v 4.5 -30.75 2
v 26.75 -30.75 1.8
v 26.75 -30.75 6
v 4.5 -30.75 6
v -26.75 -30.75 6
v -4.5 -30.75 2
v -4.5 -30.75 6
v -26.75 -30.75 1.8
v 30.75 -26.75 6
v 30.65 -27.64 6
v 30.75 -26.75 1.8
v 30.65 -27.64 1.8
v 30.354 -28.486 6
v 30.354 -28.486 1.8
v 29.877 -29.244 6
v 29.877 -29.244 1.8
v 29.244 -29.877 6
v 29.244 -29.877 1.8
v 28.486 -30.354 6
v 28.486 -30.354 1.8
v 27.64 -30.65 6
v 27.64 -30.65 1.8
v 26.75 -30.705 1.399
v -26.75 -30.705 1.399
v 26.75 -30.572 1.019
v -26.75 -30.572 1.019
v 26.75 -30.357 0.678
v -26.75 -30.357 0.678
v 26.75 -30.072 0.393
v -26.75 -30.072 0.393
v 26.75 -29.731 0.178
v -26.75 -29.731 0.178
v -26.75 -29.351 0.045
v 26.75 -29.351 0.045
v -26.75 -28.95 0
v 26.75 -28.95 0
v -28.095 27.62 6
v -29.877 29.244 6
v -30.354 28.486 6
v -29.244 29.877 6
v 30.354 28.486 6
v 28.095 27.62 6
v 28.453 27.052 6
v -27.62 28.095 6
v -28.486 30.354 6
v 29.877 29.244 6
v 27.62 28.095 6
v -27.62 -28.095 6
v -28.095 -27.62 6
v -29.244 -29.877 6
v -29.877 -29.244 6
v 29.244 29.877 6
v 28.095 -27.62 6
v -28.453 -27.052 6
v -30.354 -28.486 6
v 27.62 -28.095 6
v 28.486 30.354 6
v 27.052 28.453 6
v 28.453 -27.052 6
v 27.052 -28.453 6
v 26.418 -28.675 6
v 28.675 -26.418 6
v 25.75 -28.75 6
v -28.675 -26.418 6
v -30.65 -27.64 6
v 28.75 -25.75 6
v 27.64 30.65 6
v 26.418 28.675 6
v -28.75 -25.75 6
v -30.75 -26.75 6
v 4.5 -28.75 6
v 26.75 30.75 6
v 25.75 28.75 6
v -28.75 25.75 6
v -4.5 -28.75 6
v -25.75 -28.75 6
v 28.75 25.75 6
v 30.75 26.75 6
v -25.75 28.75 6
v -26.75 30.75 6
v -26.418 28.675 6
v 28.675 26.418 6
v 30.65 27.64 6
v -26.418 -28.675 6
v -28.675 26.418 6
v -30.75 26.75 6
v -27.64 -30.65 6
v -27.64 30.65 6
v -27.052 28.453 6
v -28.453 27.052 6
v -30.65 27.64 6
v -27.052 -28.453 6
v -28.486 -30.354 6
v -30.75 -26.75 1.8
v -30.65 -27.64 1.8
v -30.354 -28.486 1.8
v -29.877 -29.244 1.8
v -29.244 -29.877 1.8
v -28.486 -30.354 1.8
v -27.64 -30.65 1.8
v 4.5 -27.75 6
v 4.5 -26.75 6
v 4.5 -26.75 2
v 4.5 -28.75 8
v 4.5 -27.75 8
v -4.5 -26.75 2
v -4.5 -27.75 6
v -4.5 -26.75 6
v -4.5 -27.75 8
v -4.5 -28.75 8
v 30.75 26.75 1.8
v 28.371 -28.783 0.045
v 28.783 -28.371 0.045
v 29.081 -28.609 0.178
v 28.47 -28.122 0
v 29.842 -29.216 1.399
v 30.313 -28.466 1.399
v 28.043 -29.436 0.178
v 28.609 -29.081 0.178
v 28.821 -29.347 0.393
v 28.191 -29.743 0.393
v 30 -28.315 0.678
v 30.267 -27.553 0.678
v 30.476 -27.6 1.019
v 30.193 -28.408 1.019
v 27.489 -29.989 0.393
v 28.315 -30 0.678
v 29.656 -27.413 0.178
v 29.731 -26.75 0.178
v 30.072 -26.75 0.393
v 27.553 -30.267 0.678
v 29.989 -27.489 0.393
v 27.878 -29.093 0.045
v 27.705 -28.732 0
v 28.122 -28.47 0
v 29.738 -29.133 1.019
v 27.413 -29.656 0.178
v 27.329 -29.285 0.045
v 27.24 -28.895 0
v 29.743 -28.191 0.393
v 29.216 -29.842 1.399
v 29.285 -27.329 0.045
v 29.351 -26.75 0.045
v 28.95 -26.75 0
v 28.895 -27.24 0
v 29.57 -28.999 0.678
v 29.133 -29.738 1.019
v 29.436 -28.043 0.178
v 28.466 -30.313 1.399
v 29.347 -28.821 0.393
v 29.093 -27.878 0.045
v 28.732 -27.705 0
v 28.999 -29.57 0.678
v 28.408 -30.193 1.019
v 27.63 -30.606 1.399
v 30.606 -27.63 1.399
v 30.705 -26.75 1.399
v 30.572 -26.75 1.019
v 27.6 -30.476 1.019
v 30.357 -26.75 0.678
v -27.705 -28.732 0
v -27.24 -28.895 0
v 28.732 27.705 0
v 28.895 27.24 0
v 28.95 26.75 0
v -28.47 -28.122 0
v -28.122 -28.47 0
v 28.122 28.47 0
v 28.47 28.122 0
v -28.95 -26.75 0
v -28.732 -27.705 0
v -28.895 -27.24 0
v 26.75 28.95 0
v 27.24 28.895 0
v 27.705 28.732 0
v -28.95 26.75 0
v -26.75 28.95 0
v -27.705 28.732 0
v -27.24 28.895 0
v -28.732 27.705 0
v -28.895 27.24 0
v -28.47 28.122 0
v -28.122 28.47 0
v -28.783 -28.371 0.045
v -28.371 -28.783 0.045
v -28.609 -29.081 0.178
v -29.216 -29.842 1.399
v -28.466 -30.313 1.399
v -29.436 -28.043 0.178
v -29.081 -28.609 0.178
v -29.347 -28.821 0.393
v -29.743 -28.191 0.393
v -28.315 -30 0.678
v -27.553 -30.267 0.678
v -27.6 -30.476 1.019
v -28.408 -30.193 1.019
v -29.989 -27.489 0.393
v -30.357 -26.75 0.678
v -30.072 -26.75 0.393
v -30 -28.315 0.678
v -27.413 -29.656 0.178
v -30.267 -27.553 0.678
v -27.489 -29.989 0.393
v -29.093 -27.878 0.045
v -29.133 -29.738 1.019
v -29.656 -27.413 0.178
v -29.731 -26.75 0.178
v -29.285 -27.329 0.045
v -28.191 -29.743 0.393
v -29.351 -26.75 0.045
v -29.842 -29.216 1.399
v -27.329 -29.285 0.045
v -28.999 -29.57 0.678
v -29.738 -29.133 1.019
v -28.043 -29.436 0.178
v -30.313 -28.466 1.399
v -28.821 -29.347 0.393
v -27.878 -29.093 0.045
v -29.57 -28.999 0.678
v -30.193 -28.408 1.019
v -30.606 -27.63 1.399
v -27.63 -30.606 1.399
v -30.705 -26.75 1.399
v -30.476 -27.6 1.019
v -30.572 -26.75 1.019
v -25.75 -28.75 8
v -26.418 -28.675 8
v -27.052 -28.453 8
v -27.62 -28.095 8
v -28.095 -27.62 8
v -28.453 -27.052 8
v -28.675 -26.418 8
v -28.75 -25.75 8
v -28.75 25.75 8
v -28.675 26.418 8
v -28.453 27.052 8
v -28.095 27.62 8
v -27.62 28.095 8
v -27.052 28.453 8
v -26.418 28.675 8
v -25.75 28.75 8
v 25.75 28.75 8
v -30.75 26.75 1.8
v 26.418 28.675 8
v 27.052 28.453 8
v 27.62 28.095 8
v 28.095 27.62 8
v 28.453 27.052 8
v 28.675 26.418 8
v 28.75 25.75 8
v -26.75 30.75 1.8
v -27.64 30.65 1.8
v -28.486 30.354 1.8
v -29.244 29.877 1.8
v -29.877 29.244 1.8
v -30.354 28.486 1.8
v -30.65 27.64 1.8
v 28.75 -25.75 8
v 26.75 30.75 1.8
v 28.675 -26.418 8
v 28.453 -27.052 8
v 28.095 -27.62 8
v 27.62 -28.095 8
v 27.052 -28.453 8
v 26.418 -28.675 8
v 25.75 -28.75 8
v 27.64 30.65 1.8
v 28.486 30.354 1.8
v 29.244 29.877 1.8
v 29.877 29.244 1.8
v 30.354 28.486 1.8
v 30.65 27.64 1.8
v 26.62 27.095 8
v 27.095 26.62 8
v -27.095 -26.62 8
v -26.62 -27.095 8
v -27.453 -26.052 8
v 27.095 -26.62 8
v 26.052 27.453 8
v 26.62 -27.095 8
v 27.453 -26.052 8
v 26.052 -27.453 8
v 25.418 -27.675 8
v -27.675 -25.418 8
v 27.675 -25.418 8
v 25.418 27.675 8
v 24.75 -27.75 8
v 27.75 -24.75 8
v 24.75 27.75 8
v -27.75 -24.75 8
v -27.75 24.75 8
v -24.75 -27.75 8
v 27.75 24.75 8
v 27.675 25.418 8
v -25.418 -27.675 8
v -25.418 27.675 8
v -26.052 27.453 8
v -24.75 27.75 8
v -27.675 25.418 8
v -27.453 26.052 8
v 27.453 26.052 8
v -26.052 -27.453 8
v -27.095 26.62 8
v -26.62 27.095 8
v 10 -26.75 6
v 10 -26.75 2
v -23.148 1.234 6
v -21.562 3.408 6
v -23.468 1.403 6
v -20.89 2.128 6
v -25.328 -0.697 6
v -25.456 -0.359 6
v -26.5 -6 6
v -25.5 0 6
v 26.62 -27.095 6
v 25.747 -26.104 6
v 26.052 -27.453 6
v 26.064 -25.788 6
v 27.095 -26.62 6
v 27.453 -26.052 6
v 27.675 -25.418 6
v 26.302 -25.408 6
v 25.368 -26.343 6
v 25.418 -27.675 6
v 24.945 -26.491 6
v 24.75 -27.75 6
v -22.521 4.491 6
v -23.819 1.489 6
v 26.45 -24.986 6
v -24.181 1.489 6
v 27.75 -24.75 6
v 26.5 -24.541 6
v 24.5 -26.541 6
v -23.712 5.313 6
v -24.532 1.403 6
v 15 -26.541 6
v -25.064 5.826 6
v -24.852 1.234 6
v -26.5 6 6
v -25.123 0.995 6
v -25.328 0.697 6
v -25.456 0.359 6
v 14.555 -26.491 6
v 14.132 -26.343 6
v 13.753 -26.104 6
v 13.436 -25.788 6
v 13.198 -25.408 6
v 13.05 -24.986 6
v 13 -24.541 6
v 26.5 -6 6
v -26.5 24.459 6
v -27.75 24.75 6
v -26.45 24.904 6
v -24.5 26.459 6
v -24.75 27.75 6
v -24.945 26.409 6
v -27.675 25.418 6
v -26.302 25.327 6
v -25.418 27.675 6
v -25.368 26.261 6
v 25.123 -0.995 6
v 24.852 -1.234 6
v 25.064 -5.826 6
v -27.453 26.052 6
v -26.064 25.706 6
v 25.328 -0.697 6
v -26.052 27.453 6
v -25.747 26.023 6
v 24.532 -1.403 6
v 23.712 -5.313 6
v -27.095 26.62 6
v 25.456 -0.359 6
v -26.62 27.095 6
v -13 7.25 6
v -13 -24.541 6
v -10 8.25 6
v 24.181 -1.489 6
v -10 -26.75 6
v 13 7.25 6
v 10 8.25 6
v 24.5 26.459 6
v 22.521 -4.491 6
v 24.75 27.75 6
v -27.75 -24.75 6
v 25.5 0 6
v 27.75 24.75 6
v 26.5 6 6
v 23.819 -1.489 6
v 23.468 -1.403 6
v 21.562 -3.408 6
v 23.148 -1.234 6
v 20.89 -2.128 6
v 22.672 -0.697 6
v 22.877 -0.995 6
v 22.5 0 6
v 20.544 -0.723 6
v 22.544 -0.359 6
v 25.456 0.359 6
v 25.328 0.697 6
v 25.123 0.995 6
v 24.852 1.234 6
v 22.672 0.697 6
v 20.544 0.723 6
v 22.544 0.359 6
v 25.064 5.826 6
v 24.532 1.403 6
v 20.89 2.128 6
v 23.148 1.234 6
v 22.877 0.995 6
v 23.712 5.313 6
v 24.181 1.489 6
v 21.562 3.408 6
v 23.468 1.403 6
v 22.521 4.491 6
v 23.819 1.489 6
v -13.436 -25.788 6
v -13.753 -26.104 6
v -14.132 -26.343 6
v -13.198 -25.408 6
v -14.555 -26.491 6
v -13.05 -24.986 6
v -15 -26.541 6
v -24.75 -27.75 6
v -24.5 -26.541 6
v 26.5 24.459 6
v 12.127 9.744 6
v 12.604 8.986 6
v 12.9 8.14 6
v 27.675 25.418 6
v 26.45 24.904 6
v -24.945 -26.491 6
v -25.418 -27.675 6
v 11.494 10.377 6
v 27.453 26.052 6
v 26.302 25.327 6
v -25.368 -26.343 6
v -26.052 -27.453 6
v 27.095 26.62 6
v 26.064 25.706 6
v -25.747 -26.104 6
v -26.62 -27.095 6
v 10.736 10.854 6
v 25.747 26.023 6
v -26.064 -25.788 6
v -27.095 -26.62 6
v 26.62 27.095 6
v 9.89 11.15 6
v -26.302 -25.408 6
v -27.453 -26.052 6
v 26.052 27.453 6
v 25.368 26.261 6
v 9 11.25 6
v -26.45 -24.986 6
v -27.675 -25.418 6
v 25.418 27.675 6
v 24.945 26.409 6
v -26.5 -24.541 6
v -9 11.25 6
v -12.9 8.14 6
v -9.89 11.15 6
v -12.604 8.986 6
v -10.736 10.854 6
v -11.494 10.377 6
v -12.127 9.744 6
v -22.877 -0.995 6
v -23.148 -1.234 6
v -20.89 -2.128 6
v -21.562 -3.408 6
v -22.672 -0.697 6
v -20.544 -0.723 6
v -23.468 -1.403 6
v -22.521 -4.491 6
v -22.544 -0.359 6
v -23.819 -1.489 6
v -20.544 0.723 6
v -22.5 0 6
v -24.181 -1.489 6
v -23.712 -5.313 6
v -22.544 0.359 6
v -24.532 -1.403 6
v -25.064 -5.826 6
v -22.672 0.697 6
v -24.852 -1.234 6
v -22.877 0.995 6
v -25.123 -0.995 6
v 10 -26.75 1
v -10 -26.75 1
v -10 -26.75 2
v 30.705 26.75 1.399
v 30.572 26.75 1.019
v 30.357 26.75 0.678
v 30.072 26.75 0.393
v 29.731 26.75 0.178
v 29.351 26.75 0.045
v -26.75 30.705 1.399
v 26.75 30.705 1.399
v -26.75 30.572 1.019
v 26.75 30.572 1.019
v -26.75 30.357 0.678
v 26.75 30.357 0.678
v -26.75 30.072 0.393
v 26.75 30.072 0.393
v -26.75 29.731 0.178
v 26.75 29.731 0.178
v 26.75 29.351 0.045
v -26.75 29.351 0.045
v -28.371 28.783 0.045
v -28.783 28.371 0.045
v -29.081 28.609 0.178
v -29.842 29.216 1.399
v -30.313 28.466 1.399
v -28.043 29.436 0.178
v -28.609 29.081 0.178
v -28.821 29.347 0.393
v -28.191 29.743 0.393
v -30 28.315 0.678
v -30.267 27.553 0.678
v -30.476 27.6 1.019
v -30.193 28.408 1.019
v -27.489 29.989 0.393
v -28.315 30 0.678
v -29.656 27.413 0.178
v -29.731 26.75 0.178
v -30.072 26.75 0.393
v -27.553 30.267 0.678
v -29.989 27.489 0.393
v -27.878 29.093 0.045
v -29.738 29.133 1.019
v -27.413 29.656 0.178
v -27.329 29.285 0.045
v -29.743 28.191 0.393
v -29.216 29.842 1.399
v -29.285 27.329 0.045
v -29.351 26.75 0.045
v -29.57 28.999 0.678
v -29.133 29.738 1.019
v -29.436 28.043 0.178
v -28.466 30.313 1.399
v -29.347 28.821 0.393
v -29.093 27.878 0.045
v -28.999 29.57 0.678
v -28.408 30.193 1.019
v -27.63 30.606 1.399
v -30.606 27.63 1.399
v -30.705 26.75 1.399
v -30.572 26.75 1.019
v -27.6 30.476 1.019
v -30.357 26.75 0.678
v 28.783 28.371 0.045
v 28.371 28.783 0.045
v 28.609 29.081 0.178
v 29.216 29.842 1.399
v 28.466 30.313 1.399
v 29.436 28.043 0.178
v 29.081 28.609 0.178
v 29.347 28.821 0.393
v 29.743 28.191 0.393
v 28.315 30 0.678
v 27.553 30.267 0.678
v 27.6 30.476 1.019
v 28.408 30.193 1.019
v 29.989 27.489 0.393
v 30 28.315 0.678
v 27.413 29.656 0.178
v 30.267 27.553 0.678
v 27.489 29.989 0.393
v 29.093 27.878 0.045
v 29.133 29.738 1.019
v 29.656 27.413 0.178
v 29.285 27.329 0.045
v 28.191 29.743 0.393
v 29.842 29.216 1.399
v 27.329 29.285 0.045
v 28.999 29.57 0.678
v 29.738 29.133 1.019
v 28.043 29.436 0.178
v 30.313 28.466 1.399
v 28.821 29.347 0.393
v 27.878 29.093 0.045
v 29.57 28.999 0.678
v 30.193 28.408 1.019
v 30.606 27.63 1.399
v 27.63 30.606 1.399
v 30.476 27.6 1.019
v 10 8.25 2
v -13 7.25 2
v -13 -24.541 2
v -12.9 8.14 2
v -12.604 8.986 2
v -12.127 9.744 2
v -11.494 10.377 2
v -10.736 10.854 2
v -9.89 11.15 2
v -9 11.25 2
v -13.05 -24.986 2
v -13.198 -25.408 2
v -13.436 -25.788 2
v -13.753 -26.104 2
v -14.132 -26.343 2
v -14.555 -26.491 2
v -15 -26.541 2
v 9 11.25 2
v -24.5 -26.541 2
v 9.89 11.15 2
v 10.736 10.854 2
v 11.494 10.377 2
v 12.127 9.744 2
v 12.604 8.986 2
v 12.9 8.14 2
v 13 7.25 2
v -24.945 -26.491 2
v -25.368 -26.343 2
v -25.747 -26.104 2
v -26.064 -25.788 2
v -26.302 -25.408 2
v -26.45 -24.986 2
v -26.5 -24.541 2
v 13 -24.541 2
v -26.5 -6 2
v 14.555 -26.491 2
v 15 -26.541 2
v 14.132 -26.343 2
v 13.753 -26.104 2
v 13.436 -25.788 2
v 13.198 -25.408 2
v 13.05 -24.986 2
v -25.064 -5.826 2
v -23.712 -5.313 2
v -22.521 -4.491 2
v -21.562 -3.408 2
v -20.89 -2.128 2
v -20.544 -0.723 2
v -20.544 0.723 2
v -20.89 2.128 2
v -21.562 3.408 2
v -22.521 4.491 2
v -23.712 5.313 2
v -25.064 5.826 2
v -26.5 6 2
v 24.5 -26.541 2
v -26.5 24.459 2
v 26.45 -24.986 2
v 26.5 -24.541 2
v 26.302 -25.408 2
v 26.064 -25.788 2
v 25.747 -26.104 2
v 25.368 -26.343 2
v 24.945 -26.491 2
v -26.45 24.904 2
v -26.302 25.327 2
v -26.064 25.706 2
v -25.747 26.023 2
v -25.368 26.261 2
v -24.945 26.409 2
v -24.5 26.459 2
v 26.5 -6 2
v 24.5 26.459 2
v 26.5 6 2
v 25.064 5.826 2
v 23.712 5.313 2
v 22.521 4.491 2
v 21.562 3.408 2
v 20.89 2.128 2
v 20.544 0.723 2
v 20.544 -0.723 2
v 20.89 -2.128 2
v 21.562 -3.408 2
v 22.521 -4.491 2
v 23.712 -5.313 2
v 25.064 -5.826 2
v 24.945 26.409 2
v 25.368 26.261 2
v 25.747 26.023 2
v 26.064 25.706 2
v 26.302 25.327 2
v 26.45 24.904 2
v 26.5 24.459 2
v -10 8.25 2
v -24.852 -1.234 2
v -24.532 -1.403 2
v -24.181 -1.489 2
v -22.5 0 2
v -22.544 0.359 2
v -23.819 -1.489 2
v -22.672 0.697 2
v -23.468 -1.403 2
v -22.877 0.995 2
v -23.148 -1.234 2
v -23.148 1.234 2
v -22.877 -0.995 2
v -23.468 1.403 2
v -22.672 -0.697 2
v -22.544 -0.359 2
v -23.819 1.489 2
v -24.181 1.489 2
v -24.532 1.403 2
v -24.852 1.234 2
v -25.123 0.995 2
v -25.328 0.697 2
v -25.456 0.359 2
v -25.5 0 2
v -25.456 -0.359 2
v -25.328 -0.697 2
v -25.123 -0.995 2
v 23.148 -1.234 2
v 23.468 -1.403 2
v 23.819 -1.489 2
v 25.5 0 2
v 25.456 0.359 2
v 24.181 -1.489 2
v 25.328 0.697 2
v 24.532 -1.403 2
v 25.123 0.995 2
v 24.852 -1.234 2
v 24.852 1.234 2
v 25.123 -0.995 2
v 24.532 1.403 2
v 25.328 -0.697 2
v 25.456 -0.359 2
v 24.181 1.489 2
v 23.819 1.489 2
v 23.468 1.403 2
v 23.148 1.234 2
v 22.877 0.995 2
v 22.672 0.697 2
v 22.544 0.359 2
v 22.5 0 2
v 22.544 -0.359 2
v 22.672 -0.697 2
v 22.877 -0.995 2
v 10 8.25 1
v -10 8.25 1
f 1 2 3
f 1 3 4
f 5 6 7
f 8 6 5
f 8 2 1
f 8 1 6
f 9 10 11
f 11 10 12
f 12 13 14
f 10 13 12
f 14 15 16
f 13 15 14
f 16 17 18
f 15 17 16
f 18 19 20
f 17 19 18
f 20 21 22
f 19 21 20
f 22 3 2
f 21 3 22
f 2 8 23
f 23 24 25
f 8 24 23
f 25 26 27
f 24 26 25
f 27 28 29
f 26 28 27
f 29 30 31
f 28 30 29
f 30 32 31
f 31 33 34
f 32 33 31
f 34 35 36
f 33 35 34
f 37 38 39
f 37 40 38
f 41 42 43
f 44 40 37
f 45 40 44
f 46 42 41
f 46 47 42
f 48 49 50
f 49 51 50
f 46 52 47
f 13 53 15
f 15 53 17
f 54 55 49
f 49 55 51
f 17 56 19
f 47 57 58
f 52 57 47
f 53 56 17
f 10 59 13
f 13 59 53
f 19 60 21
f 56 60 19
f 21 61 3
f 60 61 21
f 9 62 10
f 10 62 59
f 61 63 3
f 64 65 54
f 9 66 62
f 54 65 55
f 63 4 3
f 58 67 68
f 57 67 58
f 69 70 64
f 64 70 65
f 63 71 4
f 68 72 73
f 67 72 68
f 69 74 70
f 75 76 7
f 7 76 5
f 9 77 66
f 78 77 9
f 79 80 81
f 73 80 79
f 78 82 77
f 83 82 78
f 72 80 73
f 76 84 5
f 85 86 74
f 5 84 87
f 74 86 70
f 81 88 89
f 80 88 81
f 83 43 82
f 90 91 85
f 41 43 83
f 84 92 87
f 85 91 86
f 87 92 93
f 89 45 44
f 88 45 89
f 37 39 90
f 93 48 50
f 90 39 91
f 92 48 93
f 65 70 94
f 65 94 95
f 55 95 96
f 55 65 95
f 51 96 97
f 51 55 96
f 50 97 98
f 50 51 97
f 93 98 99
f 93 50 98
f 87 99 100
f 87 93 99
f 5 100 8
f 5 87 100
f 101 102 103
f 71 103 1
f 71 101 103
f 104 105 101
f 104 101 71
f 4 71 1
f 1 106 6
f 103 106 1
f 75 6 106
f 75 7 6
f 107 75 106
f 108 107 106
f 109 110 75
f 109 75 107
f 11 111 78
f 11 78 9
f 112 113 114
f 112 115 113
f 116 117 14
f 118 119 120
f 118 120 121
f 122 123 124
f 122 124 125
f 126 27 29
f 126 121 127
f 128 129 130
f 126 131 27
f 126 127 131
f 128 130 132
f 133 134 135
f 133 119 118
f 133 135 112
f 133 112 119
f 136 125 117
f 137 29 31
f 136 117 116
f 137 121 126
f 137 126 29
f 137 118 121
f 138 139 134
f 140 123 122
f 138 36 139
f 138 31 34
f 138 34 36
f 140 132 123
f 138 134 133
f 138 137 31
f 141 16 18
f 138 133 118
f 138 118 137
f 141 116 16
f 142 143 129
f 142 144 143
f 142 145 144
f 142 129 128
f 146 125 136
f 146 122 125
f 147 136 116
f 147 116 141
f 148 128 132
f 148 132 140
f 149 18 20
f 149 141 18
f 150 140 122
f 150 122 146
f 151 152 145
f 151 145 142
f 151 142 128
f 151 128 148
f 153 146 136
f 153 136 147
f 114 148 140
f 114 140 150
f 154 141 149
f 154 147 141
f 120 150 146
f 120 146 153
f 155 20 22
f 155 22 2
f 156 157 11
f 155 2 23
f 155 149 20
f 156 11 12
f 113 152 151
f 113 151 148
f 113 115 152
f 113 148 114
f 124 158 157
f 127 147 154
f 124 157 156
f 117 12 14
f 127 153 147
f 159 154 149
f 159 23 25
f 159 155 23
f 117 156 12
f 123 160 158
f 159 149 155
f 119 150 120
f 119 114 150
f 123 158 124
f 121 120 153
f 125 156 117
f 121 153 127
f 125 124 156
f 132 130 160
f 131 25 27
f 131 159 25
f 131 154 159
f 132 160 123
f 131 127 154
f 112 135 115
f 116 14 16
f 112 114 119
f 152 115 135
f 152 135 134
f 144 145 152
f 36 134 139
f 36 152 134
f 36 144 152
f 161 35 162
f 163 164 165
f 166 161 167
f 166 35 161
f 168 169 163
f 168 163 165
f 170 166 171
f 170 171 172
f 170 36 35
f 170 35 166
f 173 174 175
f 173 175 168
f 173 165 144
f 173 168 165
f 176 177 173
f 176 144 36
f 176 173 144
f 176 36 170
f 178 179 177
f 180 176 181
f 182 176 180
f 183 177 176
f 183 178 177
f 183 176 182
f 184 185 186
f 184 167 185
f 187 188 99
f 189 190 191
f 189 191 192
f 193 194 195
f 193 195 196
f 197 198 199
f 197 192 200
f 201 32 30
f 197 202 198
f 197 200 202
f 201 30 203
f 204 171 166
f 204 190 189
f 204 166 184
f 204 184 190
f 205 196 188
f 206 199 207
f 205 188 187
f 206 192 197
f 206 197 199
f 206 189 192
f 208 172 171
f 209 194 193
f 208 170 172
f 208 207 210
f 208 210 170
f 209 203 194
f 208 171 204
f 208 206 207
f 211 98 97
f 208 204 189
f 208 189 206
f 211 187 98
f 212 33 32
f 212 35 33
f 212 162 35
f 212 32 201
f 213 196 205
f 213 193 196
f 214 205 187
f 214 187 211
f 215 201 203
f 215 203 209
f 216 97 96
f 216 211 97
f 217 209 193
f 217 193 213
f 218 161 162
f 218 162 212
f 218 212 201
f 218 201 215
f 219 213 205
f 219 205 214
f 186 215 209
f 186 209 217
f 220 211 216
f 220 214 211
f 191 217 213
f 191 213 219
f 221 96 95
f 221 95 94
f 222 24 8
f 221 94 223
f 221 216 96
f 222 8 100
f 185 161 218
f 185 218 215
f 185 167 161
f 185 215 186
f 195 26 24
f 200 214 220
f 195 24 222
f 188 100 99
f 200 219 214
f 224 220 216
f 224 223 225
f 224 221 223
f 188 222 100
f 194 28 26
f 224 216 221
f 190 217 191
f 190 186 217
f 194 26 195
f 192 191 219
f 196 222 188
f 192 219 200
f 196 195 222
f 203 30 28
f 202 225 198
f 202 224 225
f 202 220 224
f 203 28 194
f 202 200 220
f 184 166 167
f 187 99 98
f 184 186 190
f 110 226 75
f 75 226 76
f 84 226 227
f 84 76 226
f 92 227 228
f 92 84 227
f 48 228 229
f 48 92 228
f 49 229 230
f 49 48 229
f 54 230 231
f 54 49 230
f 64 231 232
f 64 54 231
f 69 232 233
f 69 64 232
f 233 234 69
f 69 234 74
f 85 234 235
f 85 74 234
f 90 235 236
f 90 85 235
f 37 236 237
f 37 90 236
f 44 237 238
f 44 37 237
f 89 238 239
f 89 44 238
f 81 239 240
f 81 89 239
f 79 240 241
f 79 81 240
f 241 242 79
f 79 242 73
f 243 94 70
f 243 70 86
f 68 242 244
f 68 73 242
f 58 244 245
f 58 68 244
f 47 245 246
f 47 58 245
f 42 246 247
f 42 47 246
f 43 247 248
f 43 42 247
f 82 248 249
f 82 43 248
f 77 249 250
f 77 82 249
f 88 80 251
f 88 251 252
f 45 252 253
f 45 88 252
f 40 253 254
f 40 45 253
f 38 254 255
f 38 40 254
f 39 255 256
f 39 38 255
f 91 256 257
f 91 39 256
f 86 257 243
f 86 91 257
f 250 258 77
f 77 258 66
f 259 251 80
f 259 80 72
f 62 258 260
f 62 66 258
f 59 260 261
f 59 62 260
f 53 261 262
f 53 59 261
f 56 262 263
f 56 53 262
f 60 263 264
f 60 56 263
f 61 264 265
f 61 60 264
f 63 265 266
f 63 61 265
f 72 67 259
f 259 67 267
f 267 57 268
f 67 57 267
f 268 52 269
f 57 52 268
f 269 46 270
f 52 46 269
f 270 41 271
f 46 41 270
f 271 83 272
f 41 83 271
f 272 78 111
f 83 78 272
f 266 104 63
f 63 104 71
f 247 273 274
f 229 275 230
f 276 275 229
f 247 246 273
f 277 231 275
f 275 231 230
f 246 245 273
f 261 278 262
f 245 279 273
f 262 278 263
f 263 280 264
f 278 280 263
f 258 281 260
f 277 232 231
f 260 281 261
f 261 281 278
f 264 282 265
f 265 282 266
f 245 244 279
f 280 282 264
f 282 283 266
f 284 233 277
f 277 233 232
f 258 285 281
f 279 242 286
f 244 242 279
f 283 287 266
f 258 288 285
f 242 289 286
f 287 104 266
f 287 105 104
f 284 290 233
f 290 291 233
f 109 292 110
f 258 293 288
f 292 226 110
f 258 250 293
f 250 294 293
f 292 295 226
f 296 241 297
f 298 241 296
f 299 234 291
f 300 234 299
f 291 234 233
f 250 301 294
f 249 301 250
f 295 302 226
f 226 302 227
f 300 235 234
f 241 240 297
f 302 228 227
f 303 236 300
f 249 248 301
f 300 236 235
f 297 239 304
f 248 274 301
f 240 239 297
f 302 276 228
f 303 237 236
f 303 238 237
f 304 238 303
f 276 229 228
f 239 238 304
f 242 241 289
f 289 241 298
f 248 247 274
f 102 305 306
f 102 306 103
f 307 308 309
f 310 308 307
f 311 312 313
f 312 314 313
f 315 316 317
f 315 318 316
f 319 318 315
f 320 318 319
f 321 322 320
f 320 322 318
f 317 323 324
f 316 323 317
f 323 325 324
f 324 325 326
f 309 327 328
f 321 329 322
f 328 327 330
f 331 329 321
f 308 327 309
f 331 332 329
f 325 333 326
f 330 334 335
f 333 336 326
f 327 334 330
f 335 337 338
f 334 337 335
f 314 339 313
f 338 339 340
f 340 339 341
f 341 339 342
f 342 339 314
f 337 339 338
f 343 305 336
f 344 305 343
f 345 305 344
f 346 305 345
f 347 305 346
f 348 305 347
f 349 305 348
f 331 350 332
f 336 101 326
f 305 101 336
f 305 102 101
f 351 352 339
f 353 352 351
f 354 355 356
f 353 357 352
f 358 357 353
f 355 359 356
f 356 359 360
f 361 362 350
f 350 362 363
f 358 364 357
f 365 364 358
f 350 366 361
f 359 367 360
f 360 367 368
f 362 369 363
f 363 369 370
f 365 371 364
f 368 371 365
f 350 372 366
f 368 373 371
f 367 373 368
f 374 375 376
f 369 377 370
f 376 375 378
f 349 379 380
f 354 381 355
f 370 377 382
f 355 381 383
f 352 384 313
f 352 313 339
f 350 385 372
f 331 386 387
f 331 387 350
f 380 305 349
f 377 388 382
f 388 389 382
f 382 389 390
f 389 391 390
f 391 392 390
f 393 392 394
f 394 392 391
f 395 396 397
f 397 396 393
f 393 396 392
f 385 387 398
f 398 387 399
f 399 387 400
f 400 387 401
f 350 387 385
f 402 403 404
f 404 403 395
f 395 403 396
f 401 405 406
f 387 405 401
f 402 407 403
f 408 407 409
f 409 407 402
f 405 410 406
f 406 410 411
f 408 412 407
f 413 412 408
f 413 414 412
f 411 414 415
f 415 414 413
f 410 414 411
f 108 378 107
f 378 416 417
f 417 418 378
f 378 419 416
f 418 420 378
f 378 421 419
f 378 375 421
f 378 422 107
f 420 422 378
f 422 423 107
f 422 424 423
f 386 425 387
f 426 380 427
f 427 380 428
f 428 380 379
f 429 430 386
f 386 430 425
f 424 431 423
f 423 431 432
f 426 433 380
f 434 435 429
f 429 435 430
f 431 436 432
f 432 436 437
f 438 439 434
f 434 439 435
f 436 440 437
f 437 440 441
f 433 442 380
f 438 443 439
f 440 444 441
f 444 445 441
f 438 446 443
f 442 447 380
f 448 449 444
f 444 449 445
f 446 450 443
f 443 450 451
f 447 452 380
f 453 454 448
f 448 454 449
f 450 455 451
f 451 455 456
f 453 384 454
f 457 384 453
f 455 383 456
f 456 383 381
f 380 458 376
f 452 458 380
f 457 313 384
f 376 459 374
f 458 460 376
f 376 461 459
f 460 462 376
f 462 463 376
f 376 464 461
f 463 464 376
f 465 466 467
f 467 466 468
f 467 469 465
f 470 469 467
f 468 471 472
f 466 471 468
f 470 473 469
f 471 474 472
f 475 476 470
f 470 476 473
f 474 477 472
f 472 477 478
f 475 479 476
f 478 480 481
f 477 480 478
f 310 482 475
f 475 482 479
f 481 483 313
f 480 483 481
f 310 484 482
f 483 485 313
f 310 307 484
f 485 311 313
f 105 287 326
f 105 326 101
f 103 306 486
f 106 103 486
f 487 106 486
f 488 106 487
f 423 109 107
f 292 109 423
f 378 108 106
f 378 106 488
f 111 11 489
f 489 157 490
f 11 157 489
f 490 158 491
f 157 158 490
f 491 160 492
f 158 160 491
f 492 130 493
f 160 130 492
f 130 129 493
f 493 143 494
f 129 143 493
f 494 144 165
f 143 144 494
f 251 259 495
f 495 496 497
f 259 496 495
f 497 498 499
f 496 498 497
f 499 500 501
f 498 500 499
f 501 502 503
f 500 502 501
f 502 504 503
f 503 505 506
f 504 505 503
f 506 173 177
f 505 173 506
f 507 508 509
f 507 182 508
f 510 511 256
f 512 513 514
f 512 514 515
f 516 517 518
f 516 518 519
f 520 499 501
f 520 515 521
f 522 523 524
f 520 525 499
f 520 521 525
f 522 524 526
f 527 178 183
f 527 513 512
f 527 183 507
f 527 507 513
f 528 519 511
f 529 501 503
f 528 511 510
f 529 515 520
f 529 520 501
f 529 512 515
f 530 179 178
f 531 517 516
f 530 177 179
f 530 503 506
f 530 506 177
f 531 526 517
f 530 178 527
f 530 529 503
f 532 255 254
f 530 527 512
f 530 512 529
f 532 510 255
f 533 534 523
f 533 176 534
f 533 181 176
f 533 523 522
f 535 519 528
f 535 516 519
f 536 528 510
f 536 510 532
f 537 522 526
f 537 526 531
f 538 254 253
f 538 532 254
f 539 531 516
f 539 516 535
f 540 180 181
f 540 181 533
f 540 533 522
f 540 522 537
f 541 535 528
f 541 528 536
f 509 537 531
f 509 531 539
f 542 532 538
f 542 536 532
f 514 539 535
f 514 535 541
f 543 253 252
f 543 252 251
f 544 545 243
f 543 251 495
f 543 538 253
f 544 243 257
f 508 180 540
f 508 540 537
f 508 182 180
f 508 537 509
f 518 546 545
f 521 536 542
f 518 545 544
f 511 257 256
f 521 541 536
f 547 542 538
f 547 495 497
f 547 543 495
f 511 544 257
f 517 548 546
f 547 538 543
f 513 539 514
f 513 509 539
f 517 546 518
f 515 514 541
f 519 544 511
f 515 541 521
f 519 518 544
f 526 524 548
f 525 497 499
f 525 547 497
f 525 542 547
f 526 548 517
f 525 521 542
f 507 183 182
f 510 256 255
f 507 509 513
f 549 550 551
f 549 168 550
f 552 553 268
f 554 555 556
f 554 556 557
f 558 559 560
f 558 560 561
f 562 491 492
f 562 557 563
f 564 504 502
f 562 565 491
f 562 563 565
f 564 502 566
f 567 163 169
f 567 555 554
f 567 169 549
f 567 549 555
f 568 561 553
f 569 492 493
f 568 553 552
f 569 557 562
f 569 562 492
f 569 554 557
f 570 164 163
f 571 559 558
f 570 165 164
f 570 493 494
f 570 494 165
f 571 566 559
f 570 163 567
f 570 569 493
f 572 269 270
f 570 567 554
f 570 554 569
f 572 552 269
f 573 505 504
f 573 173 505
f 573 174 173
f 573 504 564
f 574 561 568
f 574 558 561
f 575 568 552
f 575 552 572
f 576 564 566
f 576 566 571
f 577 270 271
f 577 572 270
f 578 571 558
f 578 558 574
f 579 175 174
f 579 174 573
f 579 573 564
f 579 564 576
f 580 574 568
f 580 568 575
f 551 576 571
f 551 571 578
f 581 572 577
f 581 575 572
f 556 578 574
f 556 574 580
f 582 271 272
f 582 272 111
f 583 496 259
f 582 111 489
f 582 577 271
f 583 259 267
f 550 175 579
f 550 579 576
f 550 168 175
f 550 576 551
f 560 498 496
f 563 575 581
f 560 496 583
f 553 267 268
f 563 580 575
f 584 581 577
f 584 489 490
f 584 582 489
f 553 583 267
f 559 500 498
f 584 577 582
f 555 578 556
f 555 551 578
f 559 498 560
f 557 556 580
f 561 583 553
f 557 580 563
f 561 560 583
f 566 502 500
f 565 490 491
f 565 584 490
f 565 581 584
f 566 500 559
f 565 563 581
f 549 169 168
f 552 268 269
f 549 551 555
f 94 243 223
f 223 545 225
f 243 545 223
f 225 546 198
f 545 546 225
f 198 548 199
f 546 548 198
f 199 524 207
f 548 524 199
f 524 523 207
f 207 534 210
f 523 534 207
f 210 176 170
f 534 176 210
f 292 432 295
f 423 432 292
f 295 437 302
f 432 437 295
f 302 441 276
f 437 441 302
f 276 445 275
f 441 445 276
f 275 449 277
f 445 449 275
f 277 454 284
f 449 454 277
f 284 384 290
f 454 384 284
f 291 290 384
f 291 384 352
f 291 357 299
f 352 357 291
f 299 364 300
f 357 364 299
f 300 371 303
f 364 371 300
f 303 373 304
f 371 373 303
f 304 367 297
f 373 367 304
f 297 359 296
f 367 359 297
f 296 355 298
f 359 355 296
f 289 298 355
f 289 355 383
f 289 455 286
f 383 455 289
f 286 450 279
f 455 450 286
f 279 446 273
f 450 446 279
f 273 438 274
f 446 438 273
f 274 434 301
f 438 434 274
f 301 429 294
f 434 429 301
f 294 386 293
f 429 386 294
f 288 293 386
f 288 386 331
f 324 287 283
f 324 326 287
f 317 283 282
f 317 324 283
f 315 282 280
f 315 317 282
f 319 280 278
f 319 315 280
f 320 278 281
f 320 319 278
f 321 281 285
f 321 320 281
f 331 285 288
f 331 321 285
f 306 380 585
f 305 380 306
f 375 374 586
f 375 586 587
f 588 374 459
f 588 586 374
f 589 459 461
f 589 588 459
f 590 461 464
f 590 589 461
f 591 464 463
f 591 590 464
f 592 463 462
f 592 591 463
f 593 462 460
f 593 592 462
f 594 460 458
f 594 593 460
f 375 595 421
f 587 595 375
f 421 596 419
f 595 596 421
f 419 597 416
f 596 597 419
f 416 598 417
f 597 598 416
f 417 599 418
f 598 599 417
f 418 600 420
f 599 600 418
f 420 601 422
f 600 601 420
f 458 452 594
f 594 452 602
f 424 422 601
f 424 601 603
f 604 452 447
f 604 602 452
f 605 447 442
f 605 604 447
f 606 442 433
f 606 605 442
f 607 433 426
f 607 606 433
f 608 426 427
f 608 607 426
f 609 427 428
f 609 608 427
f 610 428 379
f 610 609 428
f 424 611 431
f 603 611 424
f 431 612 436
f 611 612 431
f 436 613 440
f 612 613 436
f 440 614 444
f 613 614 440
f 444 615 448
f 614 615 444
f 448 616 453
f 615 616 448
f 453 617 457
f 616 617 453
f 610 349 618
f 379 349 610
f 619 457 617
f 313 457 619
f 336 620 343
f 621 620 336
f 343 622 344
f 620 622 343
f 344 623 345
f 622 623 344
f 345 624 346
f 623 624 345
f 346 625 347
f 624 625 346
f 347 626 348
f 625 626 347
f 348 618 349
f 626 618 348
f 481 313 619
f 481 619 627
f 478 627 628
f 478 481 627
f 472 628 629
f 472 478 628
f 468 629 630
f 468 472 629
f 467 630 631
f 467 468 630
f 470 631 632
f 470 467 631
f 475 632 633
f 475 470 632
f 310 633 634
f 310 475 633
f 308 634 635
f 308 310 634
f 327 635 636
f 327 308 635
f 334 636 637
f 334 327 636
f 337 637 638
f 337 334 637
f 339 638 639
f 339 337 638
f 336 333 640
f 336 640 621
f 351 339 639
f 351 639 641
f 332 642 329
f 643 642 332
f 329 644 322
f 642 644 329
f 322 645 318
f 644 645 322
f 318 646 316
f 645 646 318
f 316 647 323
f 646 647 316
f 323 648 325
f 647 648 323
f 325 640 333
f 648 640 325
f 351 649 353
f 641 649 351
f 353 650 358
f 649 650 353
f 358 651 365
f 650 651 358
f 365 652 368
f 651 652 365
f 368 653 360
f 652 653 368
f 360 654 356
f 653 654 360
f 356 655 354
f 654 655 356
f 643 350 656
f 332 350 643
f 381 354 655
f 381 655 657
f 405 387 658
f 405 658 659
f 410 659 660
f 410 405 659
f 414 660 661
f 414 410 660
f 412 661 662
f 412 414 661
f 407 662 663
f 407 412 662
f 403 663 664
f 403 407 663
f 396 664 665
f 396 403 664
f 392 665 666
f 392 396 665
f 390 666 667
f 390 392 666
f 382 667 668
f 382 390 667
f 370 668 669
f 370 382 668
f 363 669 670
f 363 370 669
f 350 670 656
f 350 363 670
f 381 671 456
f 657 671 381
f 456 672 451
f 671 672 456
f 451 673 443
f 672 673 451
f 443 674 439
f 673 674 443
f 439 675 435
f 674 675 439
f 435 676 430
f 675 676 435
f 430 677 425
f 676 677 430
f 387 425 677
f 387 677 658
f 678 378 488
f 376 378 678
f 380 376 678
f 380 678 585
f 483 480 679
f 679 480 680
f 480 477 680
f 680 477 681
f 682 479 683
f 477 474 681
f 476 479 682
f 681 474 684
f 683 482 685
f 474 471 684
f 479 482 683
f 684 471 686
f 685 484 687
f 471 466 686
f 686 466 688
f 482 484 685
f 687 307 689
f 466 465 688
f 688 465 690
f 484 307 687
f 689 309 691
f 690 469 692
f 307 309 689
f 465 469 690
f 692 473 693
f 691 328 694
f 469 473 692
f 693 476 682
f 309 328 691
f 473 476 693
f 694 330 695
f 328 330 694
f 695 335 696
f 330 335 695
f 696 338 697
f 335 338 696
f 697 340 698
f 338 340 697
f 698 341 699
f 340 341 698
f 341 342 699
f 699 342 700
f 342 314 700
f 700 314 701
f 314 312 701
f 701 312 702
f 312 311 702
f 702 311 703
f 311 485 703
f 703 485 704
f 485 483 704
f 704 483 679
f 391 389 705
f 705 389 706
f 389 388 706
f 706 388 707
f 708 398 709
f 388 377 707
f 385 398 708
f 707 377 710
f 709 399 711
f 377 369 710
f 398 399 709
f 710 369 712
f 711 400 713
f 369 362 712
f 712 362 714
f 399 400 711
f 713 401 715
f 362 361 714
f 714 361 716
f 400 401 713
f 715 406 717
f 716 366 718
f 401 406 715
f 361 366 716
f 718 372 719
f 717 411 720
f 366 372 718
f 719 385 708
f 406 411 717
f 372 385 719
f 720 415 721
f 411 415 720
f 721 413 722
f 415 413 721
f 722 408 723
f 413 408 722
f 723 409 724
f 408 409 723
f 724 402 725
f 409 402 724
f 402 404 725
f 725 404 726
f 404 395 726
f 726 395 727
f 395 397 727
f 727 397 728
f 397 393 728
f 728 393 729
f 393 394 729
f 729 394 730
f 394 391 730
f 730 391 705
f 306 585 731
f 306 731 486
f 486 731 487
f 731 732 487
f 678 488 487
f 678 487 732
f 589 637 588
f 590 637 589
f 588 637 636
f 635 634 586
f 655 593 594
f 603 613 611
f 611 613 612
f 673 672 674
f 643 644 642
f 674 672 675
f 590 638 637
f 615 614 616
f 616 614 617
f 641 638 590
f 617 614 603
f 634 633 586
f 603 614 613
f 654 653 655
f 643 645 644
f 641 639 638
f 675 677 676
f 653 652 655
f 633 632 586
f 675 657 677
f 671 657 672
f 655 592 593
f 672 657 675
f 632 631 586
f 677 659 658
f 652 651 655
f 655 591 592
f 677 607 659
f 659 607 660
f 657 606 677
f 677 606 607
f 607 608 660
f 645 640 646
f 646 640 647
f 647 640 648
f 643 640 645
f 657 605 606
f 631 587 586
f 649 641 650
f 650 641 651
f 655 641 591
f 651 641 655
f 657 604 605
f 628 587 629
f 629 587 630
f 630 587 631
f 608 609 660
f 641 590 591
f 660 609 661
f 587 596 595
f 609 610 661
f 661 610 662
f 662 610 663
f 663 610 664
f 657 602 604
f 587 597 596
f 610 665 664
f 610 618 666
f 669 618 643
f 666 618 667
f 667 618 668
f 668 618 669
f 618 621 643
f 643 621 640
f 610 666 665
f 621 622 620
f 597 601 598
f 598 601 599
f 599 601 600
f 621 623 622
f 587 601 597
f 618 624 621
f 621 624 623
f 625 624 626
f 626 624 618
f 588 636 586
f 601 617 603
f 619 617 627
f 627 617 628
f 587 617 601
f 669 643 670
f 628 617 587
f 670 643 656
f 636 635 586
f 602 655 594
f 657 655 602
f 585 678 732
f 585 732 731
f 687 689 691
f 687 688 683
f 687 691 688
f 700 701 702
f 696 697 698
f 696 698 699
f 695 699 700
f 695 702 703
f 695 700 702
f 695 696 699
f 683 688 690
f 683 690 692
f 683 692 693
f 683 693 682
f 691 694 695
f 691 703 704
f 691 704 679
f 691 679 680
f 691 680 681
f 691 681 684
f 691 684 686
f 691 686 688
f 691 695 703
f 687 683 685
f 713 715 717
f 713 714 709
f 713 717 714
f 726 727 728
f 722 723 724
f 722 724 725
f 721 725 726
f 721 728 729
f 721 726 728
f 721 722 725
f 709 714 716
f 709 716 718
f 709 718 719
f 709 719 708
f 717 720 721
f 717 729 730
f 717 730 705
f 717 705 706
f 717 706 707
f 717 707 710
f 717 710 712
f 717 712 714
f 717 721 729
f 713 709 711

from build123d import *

# Parameters (mm, degrees)
SKETCH_W        = 61.5
SKETCH_H        = 61.5
PAD_DEPTH       = 8
SKETCH001_R     = 1.5
POCKET_DEPTH    = 6
SKETCH002_W     = 61.5
SKETCH002_H     = 61.5
SKETCH002_W_2   = 57.5
SKETCH002_H_2   = 57.5
POCKET001_DEPTH = 2
SKETCH003_W     = 55.5
SKETCH003_H     = 55.5
POCKET002_DEPTH = 2
FILLET_R        = 4
FILLET001_R     = 3
SKETCH004_W     = 20
SKETCH004_H     = 35
POCKET003_DEPTH = 1
POCKET004_DEPTH = 4
FILLET002_R     = 2
FILLET003_R     = 4
FILLET004_R     = 1.8


with BuildPart() as part:
    # Sketch → Pad (new body)
    with BuildSketch(Plane.XY):
        Rectangle(SKETCH_W, SKETCH_H)
    extrude(amount=PAD_DEPTH)

    # Sketch001 (on Face6 of Pad) → Pocket (cut)
    with BuildSketch(Plane.XY.offset(8)):
        with Locations((-24, 0)):
            Circle(SKETCH001_R)
        with Locations((24, 0)):
            Circle(SKETCH001_R)
        Polygon((-10, 8.25), (10, 8.25), (10, -26.75), (4.5, -26.75), (4.5, -30.75), (-4.5, -30.75), (-4.5, -26.75), (-10, -26.75), align=None)
    extrude(amount=-POCKET_DEPTH, mode=Mode.SUBTRACT)

    # Sketch002 (on Face5 of Pocket) → Pocket001 (cut)
    with BuildSketch(Plane.XY.offset(8)):
        Rectangle(SKETCH002_W, SKETCH002_H)
        Rectangle(SKETCH002_W_2, SKETCH002_H_2, mode=Mode.SUBTRACT)
    extrude(amount=-POCKET001_DEPTH, mode=Mode.SUBTRACT)

    # Sketch003 (on Face15 of Pocket001) → Pocket002 (cut)
    with BuildSketch(Plane.XY.offset(8)):
        Rectangle(SKETCH003_W, SKETCH003_H)
    extrude(amount=-POCKET002_DEPTH, mode=Mode.SUBTRACT)

    # Fillet
    fillet_edges = [part.edges().sort_by_distance(p)[0] for p in [
        (-30.75, -30.75, 3),
        (30.75, -30.75, 3),
        (-30.75, 30.75, 3),
        (30.75, 30.75, 3),
    ]]
    fillet(fillet_edges, radius=FILLET_R)

    # Fillet001
    fillet001_edges = [part.edges().sort_by_distance(p)[0] for p in [
        (28.75, -28.75, 7),
        (28.75, 28.75, 7),
        (-28.75, -28.75, 7),
        (-28.75, 28.75, 7),
        (27.75, 27.75, 7),
        (-27.75, 27.75, 7),
        (-27.75, -27.75, 7),
        (27.75, -27.75, 7),
    ]]
    fillet(fillet001_edges, radius=FILLET001_R)

    # Sketch004 (on Face25 of Fillet001) → Pocket003 (cut)
    with BuildSketch(Plane.XY.offset(2)):
        with Locations((0, -9.25)):
            Rectangle(SKETCH004_W, SKETCH004_H)
    extrude(amount=-POCKET003_DEPTH, mode=Mode.SUBTRACT)

    # Sketch005 (on Face23 of Pocket003) → Pocket004 (cut)
    with BuildSketch(Plane.XY.offset(6)):
        with BuildLine():
            Line((-26.5, 26.459332), (26.5, 26.459332))
            Line((26.5, 26.459332), (26.5, 6))
            ThreePointArc((26.5, 6), (20.5, 0), (26.5, -6))
            Line((26.5, -6), (26.5, -26.540668))
            Line((26.5, -26.540668), (13, -26.540668))
            Line((13, -26.540668), (13, 11.25))
            Line((-13, 11.25), (13, 11.25))
            Line((-13, 11.25), (-13, -26.540668))
            Line((-13, -26.540668), (-26.5, -26.540668))
            Line((-26.5, -26.540668), (-26.5, -6))
            ThreePointArc((-26.5, -6), (-20.5, 0), (-26.5, 6))
            Line((-26.5, 6), (-26.5, 26.459332))
        make_face()
    extrude(amount=-POCKET004_DEPTH, mode=Mode.SUBTRACT)

    # Fillet002
    fillet002_edges = [part.edges().sort_by_distance(p)[0] for p in [
        (-26.5, 26.459332, 4),
        (26.5, 26.459332, 4),
        (-26.5, -26.540668, 4),
        (26.5, -26.540668, 4),
        (-13, -26.540668, 4),
        (13, -26.540668, 4),
    ]]
    fillet(fillet002_edges, radius=FILLET002_R)

    # Fillet003
    fillet003_edges = [part.edges().sort_by_distance(p)[0] for p in [
        (13, 11.25, 4),
        (-13, 11.25, 4),
    ]]
    fillet(fillet003_edges, radius=FILLET003_R)

    # Fillet004
    fillet004_edges = [part.edges().sort_by_distance(p)[0] for p in [
        (0, 30.75, 0),
        (-29.578427, 29.578427, 0),
        (29.578427, 29.578427, 0),
        (-30.75, 0, 0),
        (30.75, 0, 0),
        (-29.578427, -29.578427, 0),
        (29.578427, -29.578427, 0),
        (0, -30.75, 0),
    ]]
    fillet(fillet004_edges, radius=FILLET004_R)


solid = part.part
